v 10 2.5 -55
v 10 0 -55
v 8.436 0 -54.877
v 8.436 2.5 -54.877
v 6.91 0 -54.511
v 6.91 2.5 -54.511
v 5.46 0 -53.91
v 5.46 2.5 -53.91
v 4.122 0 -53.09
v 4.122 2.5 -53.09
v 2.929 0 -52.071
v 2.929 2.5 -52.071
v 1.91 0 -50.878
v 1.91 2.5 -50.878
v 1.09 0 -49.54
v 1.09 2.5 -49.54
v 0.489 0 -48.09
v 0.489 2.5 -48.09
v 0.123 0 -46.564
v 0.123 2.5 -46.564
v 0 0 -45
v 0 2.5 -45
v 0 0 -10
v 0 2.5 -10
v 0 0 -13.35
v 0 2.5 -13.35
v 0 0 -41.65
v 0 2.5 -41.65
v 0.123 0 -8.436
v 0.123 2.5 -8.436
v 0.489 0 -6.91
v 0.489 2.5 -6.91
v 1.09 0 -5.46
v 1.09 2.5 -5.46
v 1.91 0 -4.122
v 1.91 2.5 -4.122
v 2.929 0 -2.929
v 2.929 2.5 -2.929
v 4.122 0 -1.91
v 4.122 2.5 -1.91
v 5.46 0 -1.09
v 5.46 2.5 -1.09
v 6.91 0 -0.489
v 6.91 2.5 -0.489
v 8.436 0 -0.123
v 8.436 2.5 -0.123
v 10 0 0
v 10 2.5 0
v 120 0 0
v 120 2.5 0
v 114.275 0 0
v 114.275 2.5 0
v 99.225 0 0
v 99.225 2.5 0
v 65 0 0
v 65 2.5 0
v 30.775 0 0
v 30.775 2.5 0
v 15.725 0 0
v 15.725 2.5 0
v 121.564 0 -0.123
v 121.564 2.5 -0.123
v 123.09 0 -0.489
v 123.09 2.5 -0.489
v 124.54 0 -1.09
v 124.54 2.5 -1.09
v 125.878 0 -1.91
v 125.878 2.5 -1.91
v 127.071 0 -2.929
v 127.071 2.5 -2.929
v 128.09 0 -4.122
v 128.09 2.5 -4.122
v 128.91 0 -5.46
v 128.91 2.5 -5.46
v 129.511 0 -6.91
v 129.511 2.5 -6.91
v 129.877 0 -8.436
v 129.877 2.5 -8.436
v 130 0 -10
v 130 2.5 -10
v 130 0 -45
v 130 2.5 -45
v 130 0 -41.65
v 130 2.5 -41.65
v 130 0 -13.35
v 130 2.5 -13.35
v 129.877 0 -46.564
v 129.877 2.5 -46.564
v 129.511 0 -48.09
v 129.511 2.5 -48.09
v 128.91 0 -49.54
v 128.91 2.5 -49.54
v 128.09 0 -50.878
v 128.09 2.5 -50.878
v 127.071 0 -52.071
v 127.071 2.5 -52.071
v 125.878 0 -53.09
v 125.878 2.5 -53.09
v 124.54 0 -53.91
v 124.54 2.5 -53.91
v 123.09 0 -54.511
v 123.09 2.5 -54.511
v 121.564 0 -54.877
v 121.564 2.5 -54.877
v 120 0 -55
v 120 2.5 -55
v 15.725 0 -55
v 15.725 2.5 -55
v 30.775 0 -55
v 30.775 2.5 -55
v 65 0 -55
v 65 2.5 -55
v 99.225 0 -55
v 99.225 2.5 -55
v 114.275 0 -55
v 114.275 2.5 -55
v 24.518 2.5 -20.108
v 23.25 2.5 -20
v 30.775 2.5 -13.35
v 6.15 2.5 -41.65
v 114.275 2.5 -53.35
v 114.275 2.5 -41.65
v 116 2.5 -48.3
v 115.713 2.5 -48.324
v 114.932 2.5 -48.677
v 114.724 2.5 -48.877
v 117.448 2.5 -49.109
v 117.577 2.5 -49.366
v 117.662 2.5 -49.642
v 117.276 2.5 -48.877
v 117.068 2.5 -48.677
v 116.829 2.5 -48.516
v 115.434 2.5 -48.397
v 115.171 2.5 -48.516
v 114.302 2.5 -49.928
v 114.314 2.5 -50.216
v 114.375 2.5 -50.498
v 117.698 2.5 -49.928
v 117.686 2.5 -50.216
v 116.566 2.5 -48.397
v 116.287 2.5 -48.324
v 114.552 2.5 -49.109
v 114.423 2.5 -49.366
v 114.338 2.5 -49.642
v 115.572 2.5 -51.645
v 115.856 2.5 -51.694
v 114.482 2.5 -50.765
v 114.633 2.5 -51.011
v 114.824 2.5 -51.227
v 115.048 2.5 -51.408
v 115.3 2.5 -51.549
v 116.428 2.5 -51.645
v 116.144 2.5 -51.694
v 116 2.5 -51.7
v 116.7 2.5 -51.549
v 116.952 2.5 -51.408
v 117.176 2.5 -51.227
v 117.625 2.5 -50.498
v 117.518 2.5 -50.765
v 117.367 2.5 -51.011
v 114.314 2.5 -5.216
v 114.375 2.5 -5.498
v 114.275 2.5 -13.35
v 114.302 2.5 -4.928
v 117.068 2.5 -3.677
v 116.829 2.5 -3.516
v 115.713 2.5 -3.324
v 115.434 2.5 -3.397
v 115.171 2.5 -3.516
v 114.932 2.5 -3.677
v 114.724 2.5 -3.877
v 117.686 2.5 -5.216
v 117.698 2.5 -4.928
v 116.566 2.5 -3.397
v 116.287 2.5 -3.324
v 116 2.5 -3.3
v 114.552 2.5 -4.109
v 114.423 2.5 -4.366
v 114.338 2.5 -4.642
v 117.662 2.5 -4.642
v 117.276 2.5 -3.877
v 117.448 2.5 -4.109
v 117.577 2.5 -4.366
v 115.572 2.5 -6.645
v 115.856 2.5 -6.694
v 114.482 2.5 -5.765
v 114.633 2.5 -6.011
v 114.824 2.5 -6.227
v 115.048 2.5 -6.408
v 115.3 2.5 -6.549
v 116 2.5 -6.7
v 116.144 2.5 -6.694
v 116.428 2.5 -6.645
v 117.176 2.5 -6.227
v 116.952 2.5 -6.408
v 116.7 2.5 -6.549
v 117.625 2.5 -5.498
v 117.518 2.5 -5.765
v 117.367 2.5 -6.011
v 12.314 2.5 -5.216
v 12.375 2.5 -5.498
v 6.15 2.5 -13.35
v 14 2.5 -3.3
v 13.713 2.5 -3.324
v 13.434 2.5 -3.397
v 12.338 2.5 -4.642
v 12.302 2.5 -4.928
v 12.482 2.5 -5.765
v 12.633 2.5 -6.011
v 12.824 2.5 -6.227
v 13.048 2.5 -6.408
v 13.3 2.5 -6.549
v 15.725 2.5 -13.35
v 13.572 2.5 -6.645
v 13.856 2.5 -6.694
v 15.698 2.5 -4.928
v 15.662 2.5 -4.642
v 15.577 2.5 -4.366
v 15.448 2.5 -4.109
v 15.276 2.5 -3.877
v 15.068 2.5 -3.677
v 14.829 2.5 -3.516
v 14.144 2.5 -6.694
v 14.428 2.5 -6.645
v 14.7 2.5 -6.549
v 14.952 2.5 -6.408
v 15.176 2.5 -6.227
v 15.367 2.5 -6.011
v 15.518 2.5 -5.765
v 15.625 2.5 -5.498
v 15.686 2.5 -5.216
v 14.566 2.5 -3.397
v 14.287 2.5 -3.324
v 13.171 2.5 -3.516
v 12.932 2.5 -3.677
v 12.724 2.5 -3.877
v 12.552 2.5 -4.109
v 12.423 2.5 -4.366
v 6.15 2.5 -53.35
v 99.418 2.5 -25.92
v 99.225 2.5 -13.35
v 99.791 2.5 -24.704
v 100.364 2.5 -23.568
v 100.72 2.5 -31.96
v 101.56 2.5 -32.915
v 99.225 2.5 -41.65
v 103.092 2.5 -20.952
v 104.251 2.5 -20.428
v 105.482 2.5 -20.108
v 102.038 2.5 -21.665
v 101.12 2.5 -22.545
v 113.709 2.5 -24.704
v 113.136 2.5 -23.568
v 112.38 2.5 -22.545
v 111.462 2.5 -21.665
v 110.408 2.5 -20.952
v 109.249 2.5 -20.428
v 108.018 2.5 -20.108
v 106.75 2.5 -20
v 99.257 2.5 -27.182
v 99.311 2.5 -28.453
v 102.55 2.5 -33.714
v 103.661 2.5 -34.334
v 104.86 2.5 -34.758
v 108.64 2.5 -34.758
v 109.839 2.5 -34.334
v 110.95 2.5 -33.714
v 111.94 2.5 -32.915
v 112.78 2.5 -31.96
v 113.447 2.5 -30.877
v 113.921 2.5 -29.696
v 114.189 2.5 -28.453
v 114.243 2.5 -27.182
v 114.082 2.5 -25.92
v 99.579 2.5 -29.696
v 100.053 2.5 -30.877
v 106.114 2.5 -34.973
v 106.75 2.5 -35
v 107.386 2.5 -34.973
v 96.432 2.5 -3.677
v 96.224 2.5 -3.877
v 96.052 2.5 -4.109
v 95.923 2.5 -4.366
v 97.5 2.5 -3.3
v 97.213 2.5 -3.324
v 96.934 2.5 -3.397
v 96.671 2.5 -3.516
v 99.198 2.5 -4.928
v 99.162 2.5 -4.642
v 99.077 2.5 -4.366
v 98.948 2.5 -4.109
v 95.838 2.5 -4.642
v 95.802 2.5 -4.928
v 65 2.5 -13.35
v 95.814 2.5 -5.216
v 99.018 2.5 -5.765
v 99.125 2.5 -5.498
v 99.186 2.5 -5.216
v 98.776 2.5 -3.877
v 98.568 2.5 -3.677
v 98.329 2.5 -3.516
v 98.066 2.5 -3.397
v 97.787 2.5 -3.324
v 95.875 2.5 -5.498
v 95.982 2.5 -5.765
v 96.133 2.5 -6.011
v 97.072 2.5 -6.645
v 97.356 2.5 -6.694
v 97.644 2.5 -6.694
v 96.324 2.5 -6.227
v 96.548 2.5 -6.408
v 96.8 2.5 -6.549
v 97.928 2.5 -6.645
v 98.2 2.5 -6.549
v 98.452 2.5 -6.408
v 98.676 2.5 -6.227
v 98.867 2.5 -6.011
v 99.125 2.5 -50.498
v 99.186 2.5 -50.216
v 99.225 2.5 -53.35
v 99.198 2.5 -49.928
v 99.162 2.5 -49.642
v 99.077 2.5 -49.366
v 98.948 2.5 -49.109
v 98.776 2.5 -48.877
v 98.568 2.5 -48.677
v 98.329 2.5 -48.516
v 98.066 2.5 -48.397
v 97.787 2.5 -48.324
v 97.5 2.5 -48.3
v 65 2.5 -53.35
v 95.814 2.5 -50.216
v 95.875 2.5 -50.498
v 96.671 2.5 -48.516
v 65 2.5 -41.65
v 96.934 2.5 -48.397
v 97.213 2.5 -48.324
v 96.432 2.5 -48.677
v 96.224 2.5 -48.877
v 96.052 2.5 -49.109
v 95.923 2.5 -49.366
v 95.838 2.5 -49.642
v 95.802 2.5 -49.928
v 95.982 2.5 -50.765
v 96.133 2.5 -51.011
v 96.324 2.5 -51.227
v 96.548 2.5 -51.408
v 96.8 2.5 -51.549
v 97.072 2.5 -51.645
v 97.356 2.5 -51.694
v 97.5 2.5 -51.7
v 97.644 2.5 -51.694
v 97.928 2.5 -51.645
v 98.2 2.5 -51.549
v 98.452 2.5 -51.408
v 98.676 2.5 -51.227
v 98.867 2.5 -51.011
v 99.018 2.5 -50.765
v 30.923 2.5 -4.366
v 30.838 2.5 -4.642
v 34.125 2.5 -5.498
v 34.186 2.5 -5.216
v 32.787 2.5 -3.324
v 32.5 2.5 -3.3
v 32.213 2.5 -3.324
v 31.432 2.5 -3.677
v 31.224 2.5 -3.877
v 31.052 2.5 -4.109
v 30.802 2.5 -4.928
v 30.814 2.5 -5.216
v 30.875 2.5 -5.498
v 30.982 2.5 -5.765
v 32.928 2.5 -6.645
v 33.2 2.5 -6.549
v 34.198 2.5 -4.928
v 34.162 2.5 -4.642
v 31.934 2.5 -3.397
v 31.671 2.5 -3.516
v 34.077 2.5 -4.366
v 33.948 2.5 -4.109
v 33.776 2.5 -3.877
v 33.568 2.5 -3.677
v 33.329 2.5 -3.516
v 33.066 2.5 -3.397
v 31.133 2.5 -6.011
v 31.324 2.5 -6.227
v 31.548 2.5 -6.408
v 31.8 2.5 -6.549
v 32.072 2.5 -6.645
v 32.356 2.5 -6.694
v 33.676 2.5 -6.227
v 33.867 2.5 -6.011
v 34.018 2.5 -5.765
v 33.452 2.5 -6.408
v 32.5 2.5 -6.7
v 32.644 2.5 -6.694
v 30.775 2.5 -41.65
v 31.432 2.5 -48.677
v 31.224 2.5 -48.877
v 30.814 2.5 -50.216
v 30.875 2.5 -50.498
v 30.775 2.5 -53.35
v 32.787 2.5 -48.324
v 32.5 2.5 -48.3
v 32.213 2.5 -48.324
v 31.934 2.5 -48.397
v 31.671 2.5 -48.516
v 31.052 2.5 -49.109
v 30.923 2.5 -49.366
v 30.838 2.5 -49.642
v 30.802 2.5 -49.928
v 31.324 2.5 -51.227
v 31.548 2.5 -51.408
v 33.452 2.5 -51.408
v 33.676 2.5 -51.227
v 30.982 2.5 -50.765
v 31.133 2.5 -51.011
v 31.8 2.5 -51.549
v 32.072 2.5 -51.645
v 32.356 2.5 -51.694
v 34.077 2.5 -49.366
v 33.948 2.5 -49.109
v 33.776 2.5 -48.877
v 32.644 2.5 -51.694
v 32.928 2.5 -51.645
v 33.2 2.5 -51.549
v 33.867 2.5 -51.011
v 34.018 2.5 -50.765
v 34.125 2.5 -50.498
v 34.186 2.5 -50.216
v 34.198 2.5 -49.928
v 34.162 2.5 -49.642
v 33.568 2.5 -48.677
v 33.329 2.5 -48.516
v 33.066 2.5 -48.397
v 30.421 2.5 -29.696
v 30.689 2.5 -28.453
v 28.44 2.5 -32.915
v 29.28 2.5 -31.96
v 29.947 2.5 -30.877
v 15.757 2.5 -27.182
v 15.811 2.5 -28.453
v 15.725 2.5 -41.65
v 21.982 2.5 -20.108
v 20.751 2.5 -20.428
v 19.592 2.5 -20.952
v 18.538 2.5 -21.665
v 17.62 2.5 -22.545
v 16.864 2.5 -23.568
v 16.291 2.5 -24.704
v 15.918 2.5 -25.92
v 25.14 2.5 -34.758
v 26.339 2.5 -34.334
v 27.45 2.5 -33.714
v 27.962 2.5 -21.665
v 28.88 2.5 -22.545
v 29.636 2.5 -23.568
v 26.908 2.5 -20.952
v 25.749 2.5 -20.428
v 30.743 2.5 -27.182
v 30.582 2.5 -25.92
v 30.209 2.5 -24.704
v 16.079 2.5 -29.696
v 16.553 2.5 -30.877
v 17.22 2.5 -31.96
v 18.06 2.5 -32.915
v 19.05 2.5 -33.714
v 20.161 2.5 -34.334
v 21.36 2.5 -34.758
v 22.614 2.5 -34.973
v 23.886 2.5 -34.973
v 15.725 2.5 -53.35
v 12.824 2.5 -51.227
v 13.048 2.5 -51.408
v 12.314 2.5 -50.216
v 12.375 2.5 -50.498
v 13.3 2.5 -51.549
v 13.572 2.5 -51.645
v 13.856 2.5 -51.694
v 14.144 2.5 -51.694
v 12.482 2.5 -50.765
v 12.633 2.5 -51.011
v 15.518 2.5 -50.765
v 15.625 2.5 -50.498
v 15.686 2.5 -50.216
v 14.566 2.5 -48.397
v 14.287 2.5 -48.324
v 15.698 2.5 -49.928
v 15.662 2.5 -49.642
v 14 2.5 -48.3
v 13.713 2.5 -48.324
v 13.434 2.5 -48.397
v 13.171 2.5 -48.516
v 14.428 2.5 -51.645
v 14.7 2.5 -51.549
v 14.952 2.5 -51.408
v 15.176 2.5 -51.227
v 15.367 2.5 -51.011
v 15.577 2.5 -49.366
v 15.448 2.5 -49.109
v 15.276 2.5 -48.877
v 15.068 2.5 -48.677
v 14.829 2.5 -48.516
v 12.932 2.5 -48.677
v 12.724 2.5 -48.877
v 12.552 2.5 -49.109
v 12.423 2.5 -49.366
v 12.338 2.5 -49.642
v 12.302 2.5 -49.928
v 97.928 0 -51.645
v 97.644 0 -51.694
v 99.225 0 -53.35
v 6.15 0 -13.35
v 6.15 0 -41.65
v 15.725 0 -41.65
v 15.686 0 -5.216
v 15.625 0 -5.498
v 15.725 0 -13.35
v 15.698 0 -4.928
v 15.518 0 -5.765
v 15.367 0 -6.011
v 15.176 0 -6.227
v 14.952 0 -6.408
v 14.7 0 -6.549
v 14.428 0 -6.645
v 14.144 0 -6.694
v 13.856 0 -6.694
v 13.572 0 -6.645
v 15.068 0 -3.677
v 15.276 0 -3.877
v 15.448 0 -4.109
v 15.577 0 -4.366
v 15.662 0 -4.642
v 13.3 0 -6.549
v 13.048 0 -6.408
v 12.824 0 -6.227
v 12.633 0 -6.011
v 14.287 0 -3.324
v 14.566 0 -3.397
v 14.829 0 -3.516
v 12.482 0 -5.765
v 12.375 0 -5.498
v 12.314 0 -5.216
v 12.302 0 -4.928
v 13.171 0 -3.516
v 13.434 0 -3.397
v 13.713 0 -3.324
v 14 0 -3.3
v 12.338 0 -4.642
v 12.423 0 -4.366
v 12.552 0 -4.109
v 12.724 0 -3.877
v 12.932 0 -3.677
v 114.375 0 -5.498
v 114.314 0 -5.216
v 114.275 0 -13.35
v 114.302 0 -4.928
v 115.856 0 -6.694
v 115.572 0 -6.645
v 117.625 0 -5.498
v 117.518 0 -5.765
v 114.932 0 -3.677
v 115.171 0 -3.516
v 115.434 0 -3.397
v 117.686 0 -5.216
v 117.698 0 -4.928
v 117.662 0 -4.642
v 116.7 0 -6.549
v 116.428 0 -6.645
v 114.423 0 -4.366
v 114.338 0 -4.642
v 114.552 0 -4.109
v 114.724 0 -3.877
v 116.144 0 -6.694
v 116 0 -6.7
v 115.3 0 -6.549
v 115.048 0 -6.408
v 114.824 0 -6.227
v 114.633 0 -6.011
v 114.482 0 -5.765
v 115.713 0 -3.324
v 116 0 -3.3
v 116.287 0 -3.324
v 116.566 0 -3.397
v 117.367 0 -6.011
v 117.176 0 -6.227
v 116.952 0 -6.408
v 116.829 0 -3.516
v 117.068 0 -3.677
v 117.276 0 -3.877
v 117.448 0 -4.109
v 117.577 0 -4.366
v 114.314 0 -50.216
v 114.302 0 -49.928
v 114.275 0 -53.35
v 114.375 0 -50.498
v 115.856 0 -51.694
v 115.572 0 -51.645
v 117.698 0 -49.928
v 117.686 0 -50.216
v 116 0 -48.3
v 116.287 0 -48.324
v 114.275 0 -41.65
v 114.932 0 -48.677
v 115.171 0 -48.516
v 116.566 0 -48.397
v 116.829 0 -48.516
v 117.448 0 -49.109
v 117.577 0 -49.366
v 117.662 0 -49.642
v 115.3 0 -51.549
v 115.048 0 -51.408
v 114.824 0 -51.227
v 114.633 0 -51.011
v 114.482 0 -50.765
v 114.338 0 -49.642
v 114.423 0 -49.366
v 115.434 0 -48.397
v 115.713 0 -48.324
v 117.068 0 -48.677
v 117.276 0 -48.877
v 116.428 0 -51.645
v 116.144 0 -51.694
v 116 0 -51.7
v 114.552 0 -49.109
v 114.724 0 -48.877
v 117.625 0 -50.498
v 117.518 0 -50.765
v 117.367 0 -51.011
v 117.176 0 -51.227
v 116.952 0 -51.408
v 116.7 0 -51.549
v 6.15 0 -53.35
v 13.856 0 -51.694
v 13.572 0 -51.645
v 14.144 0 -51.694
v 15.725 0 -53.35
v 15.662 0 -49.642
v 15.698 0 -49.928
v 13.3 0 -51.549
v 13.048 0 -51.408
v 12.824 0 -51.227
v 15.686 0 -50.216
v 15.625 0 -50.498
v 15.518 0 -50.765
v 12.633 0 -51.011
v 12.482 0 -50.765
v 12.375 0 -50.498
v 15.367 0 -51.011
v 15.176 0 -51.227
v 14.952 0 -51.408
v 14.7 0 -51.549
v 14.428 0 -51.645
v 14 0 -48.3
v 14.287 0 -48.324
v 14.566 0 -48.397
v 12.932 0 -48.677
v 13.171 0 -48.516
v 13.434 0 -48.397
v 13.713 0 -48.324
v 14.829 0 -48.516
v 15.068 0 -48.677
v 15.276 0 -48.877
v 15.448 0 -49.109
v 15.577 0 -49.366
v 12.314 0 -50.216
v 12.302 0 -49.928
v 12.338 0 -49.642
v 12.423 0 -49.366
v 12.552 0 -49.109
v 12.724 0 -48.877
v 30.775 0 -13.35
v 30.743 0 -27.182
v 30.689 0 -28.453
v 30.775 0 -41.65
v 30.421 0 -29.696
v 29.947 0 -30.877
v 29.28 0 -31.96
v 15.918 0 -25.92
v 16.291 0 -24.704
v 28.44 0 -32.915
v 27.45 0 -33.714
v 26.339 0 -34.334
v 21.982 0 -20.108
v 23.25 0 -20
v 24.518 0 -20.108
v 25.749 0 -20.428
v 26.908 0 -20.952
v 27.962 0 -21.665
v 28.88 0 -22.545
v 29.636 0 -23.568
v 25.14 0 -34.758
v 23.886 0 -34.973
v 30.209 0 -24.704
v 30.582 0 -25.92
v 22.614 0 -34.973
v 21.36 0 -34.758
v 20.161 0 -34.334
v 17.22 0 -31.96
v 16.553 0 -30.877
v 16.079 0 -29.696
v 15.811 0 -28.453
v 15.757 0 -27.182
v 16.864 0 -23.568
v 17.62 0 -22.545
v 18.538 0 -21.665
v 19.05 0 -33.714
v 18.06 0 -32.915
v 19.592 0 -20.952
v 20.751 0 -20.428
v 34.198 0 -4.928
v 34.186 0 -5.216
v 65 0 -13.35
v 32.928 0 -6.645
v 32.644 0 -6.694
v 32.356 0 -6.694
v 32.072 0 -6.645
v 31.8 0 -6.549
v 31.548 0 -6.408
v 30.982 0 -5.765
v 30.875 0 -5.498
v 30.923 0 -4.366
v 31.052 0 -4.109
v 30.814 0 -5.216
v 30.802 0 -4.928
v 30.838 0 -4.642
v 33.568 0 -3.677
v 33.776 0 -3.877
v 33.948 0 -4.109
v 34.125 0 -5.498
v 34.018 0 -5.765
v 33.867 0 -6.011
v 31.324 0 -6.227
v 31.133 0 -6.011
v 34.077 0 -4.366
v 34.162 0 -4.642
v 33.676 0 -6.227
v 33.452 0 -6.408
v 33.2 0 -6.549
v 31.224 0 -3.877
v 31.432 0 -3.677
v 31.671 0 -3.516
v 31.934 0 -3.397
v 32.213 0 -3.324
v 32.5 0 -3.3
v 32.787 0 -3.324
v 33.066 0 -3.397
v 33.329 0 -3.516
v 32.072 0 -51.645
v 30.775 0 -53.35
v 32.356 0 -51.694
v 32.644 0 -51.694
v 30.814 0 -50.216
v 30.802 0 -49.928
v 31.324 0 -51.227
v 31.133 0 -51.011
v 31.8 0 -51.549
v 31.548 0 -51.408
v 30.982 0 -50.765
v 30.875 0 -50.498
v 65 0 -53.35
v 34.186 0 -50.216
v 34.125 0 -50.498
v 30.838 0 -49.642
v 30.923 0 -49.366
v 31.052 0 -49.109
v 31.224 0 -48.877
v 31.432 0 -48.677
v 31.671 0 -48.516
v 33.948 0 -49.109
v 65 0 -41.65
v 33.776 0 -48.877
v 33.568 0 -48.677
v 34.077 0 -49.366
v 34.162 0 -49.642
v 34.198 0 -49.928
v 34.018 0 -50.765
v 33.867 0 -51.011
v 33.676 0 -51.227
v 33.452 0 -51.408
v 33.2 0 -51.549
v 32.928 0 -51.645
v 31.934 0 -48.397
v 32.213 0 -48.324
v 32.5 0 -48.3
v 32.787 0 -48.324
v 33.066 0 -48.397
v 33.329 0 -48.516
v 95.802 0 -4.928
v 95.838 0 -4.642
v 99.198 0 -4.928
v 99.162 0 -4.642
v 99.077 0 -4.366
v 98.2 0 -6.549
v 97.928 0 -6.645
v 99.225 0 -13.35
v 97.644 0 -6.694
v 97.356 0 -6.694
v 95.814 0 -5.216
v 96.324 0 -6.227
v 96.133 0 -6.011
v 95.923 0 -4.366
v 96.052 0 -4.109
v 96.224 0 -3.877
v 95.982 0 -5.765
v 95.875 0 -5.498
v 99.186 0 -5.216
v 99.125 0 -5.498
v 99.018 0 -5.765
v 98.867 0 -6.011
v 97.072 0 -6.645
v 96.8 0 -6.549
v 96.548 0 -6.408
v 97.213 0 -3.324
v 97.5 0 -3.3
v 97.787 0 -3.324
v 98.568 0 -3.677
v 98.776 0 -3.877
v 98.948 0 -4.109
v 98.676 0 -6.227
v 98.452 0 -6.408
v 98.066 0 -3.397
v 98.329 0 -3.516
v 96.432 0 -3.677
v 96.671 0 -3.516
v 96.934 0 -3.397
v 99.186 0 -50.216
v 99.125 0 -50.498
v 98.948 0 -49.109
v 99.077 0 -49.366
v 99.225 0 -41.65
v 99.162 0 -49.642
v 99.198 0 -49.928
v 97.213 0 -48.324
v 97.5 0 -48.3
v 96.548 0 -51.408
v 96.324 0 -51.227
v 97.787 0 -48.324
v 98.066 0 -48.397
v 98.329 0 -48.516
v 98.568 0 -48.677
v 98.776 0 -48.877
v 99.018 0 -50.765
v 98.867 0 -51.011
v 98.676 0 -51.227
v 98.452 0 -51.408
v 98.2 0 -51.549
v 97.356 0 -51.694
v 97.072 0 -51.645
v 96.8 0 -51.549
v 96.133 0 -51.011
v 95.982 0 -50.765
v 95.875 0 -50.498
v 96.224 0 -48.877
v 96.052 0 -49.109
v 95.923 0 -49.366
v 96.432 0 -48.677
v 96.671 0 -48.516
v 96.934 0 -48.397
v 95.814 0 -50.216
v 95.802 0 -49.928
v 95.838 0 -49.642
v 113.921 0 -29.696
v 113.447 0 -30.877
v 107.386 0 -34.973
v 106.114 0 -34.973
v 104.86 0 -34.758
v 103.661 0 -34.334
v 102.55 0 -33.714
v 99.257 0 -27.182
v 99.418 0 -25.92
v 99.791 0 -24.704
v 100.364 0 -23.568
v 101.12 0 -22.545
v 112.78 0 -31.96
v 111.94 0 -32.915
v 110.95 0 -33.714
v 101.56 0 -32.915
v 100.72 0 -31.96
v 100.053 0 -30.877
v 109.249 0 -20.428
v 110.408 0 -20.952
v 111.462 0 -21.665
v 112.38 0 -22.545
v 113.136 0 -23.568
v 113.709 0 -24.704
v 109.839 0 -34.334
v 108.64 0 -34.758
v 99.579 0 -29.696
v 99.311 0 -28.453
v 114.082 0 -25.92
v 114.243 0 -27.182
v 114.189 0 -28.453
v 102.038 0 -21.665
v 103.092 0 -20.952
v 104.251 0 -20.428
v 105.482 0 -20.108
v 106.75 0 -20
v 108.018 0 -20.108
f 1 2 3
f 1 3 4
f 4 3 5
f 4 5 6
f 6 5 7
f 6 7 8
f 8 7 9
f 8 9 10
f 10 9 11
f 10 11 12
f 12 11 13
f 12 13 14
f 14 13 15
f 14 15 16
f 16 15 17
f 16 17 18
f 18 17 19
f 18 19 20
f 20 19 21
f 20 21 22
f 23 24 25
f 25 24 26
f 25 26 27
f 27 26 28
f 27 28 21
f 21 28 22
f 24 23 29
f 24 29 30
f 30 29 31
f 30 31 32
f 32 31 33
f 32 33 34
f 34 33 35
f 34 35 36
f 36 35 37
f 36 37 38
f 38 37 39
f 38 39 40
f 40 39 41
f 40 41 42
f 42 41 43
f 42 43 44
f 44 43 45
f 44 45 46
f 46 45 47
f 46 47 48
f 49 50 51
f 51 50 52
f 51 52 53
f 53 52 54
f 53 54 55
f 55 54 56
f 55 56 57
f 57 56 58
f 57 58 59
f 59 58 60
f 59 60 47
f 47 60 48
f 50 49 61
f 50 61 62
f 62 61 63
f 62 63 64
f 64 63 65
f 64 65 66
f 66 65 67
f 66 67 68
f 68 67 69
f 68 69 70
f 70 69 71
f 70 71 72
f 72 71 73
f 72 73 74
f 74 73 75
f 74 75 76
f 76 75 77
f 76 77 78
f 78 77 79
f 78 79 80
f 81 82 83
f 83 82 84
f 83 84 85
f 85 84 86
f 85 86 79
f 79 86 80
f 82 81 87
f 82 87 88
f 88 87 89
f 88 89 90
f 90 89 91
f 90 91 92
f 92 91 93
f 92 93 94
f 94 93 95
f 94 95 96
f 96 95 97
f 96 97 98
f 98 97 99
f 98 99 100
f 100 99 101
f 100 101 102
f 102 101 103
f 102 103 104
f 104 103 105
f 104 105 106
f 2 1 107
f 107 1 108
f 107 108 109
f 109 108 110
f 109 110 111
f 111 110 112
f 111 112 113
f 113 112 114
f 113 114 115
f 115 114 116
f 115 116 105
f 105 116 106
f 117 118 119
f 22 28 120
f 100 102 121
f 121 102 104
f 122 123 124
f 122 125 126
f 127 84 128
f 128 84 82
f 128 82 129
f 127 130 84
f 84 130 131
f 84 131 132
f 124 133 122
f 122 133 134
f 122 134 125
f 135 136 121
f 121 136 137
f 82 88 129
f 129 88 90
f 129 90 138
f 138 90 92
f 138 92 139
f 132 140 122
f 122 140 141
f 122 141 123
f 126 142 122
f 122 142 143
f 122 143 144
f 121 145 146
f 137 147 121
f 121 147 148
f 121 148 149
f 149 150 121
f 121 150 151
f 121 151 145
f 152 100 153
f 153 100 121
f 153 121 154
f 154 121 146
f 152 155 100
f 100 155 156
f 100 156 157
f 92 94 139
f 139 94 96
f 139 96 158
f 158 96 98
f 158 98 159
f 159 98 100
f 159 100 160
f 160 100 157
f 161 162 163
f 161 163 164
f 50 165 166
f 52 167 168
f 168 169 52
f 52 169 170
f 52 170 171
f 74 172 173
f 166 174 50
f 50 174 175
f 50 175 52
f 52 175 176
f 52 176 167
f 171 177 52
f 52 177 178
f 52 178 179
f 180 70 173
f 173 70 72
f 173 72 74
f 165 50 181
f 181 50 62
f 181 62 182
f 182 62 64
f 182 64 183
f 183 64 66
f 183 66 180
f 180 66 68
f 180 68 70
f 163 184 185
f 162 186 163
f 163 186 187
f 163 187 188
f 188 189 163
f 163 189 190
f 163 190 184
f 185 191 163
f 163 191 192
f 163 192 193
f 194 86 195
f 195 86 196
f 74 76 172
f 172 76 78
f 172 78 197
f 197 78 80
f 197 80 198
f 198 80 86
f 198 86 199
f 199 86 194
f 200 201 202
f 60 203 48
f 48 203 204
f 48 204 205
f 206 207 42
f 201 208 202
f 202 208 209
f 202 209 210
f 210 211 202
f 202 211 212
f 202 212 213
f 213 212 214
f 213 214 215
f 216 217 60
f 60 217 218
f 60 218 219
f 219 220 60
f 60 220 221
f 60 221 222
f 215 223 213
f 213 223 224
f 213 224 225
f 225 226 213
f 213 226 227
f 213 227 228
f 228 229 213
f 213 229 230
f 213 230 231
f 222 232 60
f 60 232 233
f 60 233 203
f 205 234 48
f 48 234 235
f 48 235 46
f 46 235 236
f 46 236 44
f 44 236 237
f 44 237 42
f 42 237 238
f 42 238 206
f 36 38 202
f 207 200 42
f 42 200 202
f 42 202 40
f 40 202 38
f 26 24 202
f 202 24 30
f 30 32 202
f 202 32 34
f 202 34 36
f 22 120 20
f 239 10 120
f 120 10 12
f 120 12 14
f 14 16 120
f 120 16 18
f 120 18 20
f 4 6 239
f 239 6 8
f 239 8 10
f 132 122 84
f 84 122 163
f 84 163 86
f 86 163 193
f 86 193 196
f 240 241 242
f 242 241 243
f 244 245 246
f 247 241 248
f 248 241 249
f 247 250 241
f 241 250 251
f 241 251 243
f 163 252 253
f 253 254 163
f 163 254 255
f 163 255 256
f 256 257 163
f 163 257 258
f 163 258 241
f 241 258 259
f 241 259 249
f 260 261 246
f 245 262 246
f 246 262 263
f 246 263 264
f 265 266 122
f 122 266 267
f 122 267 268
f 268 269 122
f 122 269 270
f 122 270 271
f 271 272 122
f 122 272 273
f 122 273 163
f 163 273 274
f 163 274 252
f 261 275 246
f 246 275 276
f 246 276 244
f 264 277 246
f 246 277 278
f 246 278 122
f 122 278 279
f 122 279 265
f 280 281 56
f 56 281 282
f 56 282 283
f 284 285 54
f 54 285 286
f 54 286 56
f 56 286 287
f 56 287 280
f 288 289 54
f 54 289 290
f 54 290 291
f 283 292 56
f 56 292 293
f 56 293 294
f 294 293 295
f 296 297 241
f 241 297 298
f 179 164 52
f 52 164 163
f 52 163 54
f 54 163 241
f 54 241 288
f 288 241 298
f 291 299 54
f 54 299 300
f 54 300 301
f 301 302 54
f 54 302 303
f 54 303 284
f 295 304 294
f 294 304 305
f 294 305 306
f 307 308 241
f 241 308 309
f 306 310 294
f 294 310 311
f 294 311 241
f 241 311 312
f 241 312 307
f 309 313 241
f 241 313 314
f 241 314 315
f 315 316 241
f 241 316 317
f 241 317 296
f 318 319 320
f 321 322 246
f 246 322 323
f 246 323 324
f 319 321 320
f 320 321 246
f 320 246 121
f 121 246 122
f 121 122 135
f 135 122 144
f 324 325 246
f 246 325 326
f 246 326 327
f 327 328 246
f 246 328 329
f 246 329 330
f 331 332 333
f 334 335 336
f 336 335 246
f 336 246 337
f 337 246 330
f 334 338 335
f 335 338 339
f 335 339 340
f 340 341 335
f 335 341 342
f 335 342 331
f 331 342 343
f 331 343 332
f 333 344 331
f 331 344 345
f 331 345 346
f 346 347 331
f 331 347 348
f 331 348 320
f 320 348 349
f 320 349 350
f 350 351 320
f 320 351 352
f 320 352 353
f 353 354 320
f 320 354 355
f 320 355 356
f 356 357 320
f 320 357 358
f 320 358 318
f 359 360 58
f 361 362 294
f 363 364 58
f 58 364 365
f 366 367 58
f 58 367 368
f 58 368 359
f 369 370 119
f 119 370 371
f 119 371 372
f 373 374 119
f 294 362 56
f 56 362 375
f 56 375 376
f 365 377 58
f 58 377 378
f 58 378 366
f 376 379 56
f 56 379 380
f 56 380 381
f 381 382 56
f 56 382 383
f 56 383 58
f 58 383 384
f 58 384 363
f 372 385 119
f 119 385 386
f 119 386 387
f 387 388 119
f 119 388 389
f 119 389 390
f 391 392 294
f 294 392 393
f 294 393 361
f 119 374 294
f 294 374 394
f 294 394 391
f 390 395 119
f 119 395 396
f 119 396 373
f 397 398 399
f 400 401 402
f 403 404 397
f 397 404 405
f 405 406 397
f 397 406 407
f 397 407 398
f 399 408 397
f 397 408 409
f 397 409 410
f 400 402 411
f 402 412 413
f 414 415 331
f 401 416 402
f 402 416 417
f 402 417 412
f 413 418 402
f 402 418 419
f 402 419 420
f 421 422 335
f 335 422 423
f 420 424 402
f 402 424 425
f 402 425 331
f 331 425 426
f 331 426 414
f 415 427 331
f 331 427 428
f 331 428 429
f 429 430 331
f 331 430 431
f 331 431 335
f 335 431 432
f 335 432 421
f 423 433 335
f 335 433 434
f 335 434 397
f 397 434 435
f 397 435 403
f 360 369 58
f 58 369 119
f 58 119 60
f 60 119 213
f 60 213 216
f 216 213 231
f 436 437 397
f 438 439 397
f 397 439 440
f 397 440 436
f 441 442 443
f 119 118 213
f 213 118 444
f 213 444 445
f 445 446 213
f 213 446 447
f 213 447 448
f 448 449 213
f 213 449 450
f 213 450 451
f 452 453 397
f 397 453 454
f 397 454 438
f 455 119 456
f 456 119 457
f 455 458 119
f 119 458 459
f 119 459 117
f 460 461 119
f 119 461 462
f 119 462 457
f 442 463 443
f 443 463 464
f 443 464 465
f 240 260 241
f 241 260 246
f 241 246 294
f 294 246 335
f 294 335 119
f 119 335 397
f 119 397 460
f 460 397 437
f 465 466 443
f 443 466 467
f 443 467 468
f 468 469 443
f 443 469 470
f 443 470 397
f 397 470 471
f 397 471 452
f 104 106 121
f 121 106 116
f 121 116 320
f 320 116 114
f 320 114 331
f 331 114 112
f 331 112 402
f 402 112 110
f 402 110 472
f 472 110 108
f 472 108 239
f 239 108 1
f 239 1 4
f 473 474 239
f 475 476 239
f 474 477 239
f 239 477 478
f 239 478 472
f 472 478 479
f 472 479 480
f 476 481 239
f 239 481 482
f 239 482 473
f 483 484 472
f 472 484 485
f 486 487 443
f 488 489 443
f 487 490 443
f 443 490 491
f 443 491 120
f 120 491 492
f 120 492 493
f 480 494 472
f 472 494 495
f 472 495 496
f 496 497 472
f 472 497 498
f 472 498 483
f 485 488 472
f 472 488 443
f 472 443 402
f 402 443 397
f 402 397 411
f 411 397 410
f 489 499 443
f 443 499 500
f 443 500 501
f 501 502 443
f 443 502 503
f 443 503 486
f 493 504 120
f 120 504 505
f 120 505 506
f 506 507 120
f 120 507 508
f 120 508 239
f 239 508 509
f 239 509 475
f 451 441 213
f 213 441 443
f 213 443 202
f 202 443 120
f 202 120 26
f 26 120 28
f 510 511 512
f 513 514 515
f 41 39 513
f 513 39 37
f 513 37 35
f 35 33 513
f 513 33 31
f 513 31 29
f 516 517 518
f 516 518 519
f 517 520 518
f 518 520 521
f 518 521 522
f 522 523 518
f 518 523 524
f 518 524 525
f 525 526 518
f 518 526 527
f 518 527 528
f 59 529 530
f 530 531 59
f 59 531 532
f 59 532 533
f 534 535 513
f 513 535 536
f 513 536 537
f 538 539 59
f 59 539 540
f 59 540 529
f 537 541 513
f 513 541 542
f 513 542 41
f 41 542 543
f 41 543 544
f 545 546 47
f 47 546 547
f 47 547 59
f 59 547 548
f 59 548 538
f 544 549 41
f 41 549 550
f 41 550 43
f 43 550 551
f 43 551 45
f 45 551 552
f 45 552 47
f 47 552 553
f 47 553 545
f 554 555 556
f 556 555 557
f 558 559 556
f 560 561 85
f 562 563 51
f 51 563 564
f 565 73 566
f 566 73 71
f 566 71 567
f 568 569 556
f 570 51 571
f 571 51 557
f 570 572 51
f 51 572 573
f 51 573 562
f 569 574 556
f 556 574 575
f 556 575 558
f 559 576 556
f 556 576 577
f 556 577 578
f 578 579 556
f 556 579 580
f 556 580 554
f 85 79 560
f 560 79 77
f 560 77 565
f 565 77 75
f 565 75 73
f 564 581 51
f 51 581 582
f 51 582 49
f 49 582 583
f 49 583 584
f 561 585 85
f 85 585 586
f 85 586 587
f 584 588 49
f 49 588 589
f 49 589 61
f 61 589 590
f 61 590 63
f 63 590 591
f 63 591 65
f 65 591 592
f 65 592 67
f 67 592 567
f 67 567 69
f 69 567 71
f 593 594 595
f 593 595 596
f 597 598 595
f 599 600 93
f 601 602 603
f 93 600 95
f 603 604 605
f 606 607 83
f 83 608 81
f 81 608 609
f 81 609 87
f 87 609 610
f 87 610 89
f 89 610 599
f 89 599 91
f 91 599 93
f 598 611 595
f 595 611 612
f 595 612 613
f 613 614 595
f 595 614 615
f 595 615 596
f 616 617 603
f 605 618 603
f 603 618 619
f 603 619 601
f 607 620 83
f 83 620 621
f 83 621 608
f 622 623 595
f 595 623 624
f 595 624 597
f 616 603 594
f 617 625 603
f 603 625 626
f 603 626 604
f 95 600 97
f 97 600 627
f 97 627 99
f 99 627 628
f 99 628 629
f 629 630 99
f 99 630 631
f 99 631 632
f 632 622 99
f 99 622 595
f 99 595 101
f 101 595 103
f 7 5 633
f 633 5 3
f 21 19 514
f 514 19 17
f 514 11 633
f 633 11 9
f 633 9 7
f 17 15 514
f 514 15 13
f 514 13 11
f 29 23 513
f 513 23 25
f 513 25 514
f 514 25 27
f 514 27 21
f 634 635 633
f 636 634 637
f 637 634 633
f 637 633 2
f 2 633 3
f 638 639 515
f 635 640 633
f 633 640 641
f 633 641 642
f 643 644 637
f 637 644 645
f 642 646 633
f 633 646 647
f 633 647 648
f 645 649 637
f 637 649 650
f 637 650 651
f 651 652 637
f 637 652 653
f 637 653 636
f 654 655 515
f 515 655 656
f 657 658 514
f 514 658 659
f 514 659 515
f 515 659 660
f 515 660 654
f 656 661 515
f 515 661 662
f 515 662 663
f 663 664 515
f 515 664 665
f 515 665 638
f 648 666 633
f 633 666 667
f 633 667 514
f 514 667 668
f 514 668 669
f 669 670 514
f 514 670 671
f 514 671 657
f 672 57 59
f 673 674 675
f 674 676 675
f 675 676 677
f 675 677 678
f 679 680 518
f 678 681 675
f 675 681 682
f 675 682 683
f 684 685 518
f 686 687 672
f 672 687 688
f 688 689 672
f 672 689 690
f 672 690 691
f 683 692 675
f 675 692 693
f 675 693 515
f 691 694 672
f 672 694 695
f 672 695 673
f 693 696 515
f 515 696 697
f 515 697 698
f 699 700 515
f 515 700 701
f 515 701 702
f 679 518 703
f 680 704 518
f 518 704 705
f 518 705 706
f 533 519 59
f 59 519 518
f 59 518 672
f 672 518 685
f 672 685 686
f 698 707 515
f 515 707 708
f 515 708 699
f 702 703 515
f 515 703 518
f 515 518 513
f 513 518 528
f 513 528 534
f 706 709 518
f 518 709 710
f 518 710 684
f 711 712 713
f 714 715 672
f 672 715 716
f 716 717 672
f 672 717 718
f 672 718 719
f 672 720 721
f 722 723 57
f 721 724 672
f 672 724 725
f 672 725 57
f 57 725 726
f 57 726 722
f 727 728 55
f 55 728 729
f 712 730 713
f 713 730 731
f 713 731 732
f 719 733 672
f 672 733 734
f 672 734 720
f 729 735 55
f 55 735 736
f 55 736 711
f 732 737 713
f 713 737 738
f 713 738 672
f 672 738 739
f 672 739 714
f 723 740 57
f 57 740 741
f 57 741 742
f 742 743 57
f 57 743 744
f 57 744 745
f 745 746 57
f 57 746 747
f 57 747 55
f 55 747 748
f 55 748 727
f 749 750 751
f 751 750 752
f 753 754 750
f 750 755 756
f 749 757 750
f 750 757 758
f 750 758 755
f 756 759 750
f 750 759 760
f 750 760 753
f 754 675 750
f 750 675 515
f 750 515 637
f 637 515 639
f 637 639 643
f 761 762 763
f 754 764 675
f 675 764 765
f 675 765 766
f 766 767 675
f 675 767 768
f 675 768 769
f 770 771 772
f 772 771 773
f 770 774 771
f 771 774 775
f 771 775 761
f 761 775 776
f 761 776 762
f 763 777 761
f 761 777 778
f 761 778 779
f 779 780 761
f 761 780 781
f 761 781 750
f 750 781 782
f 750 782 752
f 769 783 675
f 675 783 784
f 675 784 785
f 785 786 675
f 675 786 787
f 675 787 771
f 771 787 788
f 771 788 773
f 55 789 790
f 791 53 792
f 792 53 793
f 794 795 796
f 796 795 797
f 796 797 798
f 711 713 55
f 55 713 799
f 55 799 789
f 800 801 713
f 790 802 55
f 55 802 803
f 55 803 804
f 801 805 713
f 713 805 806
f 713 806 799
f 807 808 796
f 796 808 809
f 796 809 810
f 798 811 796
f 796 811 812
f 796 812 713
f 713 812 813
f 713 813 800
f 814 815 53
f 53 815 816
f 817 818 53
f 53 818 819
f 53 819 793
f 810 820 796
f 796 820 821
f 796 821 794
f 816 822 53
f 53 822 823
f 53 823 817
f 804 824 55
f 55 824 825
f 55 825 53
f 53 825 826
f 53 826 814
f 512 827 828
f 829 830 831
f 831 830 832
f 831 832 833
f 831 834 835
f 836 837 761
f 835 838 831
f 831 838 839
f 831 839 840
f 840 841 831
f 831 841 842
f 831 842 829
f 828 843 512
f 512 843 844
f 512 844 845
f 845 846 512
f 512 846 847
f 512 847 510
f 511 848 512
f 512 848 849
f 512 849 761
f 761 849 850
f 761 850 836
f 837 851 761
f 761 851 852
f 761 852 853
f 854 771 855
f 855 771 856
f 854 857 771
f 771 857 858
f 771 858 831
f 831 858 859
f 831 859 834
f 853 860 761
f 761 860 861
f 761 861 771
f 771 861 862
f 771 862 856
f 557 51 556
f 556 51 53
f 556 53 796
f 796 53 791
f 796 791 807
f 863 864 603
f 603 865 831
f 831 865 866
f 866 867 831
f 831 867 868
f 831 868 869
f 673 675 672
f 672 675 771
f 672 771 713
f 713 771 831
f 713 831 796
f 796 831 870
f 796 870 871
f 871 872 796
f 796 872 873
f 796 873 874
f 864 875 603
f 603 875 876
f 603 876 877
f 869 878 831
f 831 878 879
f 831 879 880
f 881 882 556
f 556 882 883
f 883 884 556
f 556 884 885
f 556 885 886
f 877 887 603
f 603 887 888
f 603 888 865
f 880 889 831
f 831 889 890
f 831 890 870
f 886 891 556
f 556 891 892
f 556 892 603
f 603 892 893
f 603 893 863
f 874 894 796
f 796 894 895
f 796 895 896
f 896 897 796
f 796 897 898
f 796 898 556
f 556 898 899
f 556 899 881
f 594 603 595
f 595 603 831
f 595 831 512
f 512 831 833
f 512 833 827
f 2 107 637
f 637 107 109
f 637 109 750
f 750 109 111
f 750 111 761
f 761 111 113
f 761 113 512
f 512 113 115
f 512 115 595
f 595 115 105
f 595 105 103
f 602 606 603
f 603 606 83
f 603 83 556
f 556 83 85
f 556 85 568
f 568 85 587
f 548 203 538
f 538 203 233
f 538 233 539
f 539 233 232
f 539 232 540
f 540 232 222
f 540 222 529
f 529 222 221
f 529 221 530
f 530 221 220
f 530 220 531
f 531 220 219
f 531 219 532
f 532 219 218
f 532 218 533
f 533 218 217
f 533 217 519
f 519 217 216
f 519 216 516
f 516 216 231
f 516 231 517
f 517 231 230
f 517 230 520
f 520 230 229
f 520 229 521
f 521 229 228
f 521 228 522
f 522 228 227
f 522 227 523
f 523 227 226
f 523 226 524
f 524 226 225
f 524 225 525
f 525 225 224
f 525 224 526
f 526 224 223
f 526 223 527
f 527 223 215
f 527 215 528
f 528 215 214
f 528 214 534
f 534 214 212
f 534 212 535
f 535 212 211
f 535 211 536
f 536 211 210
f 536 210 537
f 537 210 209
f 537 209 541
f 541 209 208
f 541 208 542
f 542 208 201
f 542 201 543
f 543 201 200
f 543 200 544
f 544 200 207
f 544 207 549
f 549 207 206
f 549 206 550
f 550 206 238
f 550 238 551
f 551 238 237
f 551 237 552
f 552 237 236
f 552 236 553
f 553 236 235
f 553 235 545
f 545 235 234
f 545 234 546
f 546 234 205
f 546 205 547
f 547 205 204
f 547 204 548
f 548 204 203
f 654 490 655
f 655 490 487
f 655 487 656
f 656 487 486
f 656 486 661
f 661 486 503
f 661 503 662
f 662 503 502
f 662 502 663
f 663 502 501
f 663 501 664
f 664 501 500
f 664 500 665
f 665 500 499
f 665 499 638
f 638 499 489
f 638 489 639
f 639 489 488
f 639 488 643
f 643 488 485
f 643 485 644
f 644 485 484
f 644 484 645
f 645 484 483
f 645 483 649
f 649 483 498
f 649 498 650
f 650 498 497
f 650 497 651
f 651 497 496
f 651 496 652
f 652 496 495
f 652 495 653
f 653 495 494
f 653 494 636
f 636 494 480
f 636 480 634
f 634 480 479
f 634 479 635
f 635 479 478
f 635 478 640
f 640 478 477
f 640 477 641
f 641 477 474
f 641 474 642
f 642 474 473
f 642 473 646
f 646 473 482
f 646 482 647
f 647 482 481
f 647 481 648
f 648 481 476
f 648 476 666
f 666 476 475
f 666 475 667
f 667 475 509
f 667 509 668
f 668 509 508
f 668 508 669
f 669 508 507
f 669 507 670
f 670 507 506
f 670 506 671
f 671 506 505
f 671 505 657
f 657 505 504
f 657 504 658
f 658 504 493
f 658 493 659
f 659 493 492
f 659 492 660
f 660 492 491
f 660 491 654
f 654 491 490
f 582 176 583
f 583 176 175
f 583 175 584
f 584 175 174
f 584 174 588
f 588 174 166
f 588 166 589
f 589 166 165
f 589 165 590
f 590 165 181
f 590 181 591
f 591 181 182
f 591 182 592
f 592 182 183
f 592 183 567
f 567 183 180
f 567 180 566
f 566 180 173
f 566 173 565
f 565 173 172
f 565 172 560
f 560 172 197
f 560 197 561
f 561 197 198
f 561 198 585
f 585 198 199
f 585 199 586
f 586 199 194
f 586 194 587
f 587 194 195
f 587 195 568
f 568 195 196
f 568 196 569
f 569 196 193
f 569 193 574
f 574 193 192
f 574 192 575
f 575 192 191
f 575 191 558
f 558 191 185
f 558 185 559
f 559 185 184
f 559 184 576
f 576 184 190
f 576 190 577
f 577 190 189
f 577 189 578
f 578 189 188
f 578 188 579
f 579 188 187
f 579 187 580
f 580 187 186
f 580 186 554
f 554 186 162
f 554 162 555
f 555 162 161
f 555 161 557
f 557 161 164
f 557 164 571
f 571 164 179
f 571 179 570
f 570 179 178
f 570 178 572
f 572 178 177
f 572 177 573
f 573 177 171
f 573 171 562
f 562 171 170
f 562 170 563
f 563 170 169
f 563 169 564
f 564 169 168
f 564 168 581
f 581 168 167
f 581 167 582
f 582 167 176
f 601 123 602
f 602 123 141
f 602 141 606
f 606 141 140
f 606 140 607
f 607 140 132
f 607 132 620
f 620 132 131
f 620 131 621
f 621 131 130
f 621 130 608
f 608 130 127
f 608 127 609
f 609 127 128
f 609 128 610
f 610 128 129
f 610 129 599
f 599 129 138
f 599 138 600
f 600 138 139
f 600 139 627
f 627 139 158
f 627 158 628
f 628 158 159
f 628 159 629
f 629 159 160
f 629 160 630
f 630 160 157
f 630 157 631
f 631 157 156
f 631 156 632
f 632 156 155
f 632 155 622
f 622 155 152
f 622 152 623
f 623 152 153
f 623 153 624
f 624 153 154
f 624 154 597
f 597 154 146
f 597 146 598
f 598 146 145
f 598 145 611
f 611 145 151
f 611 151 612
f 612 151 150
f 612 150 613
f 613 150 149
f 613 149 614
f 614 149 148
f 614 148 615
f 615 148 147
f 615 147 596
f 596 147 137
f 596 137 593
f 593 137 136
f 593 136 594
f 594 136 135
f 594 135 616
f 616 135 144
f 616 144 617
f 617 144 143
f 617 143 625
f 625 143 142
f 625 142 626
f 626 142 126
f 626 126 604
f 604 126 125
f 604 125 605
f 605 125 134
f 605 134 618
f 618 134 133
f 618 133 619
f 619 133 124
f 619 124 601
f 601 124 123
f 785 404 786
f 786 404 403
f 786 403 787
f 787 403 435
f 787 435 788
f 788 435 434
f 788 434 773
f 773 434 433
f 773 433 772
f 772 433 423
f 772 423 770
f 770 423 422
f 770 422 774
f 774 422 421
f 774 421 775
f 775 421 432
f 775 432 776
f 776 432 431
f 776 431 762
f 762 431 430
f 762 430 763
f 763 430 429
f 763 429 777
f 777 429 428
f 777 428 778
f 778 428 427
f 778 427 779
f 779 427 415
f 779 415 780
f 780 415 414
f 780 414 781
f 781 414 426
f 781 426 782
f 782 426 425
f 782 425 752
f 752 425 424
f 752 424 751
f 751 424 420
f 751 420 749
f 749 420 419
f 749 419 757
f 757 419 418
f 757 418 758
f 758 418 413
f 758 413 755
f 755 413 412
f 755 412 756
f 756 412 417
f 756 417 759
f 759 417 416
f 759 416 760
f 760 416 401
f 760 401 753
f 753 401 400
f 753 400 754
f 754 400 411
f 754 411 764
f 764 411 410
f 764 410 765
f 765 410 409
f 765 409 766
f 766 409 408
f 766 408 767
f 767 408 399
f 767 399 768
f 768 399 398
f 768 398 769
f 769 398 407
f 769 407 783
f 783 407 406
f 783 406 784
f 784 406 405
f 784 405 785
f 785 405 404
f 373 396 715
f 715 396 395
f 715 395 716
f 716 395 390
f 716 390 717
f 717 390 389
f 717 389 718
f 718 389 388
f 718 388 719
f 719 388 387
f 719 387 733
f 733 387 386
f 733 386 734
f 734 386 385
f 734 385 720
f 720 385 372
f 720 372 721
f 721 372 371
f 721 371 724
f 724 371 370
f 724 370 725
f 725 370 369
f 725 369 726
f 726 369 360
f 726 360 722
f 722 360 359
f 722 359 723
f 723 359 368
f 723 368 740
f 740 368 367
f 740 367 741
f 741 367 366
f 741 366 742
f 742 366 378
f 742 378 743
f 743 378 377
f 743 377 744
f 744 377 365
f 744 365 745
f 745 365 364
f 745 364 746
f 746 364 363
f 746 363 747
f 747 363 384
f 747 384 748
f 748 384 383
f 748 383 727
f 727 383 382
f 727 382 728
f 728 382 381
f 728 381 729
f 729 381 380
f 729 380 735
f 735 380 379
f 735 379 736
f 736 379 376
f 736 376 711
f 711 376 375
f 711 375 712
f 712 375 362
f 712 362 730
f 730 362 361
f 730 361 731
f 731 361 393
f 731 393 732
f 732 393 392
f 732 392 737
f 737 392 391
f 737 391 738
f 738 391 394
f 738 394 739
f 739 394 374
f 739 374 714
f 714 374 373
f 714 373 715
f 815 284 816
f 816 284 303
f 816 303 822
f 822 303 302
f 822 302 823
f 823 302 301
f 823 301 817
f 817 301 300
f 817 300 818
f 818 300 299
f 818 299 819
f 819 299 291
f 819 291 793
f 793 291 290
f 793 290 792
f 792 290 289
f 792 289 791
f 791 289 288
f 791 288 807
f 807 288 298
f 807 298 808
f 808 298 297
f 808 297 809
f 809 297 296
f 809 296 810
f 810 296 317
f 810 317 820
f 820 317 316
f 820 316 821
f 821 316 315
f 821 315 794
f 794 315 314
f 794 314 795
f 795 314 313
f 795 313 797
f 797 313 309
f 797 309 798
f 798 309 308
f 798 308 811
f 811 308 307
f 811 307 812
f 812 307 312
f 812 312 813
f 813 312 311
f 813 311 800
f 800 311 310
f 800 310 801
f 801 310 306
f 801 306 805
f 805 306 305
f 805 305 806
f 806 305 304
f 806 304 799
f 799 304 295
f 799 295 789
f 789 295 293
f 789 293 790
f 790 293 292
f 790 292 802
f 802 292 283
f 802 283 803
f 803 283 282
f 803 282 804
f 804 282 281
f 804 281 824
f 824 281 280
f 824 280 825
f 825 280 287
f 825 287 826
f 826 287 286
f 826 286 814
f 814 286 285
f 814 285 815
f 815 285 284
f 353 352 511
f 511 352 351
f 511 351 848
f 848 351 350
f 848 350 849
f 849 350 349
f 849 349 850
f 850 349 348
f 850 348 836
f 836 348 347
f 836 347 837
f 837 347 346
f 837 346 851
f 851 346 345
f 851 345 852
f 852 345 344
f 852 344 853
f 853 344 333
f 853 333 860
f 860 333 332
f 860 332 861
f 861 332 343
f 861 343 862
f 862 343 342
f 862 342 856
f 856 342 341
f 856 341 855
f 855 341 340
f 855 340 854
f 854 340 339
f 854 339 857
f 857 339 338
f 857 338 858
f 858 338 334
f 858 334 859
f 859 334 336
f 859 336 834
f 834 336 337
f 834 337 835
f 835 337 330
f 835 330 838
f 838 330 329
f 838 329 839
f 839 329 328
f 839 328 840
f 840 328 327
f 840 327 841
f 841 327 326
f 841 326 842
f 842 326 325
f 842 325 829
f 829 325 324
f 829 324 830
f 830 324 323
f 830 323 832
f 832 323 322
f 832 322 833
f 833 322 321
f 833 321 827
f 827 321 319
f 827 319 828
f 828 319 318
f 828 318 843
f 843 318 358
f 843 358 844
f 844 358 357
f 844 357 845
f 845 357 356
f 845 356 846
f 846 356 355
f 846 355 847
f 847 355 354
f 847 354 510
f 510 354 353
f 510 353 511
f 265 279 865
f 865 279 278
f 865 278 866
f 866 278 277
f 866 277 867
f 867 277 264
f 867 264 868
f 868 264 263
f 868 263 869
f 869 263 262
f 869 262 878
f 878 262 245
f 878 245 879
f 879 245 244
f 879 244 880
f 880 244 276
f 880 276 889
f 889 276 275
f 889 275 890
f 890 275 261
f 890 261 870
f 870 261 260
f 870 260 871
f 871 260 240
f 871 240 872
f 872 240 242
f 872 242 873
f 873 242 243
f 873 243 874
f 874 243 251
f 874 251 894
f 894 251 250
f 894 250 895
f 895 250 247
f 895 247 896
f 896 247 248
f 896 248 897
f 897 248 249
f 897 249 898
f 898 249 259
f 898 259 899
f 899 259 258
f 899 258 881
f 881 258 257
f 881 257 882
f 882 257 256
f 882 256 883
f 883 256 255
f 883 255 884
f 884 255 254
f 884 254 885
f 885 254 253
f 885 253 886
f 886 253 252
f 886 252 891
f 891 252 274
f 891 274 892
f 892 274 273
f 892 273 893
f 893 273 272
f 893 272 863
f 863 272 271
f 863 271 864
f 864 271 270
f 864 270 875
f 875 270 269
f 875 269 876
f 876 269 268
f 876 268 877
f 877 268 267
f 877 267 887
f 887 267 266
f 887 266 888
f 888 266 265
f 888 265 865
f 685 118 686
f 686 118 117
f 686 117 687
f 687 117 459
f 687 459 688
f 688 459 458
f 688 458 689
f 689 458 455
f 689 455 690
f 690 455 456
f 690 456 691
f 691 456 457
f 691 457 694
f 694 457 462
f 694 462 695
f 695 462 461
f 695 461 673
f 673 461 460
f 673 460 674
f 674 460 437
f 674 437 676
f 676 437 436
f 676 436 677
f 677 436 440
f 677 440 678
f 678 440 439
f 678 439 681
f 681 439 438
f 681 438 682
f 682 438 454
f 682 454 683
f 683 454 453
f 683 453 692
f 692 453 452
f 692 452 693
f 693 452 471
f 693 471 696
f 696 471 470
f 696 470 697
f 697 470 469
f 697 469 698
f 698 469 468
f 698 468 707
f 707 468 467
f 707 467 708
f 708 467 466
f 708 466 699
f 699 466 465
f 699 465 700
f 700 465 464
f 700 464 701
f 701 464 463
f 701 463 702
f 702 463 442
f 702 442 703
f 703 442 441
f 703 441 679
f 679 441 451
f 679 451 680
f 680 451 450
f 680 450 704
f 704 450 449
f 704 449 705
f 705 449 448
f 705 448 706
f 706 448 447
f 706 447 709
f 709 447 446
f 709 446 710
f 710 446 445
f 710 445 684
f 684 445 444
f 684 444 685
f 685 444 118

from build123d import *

# Parameters (mm, degrees)
BOSS_EXTRUDE1_DEPTH = 2.5
SKETCH2_R           = 1.7
CUT_EXTRUDE1_DEPTH  = 142.178079035
SKETCH3_R           = 1.7
CUT_EXTRUDE2_DEPTH  = 10
SKETCH4_R           = 7.5
CUT_EXTRUDE3_DEPTH  = 10


with BuildPart() as part:
    # Sketch1 → Boss-Extrude1 (new body)
    with BuildSketch(Plane(origin=(0, 0, 0), x_dir=(1, 0, 0), z_dir=(0, 1, 0))):
        with BuildLine():
            Line((10, 0), (120, 0))
            ThreePointArc((120, 0), (127.071067812, 2.928932188), (130, 10))
            Line((130, 10), (130, 45))
            ThreePointArc((130, 45), (127.071067812, 52.071067812), (120, 55))
            Line((120, 55), (10, 55))
            ThreePointArc((10, 55), (2.928932188, 52.071067812), (0, 45))
            Line((0, 45), (0, 10))
            ThreePointArc((0, 10), (2.928932188, 2.928932188), (10, 0))
        make_face()
    extrude(amount=BOSS_EXTRUDE1_DEPTH)

    # Sketch2 → Cut-Extrude1 (cut, through all)
    with BuildSketch(Plane(origin=(0, 2.5, 0), x_dir=(1, 0, 0), z_dir=(0, 1, 0))):
        with Locations(Location((14, 5, 0), (0, 0, 270))):
            Circle(SKETCH2_R)
        with Locations(Location((14, 50, 0), (0, 0, 270))):
            Circle(SKETCH2_R)
        with Locations(Location((116, 5, 0), (0, 0, 90))):
            Circle(SKETCH2_R)
        with Locations(Location((116, 50, 0), (0, 0, 90))):
            Circle(SKETCH2_R)
    extrude(amount=-CUT_EXTRUDE1_DEPTH, mode=Mode.SUBTRACT)

    # Sketch3 → Cut-Extrude2 (cut)
    with BuildSketch(Plane(origin=(0, 2.5, 0), x_dir=(1, 0, 0), z_dir=(0, 1, 0))):
        with Locations(Location((32.5, 50, 0), (0, 0, 270))):
            Circle(SKETCH3_R)
        with Locations(Location((32.5, 5, 0), (0, 0, 270))):
            Circle(SKETCH3_R)
        with Locations(Location((97.5, 5, 0), (0, 0, 270))):
            Circle(SKETCH3_R)
        with Locations(Location((97.5, 50, 0), (0, 0, 270))):
            Circle(SKETCH3_R)
    extrude(amount=-CUT_EXTRUDE2_DEPTH, mode=Mode.SUBTRACT)

    # Sketch4 → Cut-Extrude3 (cut)
    with BuildSketch(Plane(origin=(0, 2.5, 0), x_dir=(1, 0, 0), z_dir=(0, 1, 0))):
        with Locations(Location((23.25, 27.5, 0), (0, 0, 270))):
            Circle(SKETCH4_R)
        with Locations(Location((106.75, 27.5, 0), (0, 0, 270))):
            Circle(SKETCH4_R)
    extrude(amount=-CUT_EXTRUDE3_DEPTH, mode=Mode.SUBTRACT)


solid = part.part
